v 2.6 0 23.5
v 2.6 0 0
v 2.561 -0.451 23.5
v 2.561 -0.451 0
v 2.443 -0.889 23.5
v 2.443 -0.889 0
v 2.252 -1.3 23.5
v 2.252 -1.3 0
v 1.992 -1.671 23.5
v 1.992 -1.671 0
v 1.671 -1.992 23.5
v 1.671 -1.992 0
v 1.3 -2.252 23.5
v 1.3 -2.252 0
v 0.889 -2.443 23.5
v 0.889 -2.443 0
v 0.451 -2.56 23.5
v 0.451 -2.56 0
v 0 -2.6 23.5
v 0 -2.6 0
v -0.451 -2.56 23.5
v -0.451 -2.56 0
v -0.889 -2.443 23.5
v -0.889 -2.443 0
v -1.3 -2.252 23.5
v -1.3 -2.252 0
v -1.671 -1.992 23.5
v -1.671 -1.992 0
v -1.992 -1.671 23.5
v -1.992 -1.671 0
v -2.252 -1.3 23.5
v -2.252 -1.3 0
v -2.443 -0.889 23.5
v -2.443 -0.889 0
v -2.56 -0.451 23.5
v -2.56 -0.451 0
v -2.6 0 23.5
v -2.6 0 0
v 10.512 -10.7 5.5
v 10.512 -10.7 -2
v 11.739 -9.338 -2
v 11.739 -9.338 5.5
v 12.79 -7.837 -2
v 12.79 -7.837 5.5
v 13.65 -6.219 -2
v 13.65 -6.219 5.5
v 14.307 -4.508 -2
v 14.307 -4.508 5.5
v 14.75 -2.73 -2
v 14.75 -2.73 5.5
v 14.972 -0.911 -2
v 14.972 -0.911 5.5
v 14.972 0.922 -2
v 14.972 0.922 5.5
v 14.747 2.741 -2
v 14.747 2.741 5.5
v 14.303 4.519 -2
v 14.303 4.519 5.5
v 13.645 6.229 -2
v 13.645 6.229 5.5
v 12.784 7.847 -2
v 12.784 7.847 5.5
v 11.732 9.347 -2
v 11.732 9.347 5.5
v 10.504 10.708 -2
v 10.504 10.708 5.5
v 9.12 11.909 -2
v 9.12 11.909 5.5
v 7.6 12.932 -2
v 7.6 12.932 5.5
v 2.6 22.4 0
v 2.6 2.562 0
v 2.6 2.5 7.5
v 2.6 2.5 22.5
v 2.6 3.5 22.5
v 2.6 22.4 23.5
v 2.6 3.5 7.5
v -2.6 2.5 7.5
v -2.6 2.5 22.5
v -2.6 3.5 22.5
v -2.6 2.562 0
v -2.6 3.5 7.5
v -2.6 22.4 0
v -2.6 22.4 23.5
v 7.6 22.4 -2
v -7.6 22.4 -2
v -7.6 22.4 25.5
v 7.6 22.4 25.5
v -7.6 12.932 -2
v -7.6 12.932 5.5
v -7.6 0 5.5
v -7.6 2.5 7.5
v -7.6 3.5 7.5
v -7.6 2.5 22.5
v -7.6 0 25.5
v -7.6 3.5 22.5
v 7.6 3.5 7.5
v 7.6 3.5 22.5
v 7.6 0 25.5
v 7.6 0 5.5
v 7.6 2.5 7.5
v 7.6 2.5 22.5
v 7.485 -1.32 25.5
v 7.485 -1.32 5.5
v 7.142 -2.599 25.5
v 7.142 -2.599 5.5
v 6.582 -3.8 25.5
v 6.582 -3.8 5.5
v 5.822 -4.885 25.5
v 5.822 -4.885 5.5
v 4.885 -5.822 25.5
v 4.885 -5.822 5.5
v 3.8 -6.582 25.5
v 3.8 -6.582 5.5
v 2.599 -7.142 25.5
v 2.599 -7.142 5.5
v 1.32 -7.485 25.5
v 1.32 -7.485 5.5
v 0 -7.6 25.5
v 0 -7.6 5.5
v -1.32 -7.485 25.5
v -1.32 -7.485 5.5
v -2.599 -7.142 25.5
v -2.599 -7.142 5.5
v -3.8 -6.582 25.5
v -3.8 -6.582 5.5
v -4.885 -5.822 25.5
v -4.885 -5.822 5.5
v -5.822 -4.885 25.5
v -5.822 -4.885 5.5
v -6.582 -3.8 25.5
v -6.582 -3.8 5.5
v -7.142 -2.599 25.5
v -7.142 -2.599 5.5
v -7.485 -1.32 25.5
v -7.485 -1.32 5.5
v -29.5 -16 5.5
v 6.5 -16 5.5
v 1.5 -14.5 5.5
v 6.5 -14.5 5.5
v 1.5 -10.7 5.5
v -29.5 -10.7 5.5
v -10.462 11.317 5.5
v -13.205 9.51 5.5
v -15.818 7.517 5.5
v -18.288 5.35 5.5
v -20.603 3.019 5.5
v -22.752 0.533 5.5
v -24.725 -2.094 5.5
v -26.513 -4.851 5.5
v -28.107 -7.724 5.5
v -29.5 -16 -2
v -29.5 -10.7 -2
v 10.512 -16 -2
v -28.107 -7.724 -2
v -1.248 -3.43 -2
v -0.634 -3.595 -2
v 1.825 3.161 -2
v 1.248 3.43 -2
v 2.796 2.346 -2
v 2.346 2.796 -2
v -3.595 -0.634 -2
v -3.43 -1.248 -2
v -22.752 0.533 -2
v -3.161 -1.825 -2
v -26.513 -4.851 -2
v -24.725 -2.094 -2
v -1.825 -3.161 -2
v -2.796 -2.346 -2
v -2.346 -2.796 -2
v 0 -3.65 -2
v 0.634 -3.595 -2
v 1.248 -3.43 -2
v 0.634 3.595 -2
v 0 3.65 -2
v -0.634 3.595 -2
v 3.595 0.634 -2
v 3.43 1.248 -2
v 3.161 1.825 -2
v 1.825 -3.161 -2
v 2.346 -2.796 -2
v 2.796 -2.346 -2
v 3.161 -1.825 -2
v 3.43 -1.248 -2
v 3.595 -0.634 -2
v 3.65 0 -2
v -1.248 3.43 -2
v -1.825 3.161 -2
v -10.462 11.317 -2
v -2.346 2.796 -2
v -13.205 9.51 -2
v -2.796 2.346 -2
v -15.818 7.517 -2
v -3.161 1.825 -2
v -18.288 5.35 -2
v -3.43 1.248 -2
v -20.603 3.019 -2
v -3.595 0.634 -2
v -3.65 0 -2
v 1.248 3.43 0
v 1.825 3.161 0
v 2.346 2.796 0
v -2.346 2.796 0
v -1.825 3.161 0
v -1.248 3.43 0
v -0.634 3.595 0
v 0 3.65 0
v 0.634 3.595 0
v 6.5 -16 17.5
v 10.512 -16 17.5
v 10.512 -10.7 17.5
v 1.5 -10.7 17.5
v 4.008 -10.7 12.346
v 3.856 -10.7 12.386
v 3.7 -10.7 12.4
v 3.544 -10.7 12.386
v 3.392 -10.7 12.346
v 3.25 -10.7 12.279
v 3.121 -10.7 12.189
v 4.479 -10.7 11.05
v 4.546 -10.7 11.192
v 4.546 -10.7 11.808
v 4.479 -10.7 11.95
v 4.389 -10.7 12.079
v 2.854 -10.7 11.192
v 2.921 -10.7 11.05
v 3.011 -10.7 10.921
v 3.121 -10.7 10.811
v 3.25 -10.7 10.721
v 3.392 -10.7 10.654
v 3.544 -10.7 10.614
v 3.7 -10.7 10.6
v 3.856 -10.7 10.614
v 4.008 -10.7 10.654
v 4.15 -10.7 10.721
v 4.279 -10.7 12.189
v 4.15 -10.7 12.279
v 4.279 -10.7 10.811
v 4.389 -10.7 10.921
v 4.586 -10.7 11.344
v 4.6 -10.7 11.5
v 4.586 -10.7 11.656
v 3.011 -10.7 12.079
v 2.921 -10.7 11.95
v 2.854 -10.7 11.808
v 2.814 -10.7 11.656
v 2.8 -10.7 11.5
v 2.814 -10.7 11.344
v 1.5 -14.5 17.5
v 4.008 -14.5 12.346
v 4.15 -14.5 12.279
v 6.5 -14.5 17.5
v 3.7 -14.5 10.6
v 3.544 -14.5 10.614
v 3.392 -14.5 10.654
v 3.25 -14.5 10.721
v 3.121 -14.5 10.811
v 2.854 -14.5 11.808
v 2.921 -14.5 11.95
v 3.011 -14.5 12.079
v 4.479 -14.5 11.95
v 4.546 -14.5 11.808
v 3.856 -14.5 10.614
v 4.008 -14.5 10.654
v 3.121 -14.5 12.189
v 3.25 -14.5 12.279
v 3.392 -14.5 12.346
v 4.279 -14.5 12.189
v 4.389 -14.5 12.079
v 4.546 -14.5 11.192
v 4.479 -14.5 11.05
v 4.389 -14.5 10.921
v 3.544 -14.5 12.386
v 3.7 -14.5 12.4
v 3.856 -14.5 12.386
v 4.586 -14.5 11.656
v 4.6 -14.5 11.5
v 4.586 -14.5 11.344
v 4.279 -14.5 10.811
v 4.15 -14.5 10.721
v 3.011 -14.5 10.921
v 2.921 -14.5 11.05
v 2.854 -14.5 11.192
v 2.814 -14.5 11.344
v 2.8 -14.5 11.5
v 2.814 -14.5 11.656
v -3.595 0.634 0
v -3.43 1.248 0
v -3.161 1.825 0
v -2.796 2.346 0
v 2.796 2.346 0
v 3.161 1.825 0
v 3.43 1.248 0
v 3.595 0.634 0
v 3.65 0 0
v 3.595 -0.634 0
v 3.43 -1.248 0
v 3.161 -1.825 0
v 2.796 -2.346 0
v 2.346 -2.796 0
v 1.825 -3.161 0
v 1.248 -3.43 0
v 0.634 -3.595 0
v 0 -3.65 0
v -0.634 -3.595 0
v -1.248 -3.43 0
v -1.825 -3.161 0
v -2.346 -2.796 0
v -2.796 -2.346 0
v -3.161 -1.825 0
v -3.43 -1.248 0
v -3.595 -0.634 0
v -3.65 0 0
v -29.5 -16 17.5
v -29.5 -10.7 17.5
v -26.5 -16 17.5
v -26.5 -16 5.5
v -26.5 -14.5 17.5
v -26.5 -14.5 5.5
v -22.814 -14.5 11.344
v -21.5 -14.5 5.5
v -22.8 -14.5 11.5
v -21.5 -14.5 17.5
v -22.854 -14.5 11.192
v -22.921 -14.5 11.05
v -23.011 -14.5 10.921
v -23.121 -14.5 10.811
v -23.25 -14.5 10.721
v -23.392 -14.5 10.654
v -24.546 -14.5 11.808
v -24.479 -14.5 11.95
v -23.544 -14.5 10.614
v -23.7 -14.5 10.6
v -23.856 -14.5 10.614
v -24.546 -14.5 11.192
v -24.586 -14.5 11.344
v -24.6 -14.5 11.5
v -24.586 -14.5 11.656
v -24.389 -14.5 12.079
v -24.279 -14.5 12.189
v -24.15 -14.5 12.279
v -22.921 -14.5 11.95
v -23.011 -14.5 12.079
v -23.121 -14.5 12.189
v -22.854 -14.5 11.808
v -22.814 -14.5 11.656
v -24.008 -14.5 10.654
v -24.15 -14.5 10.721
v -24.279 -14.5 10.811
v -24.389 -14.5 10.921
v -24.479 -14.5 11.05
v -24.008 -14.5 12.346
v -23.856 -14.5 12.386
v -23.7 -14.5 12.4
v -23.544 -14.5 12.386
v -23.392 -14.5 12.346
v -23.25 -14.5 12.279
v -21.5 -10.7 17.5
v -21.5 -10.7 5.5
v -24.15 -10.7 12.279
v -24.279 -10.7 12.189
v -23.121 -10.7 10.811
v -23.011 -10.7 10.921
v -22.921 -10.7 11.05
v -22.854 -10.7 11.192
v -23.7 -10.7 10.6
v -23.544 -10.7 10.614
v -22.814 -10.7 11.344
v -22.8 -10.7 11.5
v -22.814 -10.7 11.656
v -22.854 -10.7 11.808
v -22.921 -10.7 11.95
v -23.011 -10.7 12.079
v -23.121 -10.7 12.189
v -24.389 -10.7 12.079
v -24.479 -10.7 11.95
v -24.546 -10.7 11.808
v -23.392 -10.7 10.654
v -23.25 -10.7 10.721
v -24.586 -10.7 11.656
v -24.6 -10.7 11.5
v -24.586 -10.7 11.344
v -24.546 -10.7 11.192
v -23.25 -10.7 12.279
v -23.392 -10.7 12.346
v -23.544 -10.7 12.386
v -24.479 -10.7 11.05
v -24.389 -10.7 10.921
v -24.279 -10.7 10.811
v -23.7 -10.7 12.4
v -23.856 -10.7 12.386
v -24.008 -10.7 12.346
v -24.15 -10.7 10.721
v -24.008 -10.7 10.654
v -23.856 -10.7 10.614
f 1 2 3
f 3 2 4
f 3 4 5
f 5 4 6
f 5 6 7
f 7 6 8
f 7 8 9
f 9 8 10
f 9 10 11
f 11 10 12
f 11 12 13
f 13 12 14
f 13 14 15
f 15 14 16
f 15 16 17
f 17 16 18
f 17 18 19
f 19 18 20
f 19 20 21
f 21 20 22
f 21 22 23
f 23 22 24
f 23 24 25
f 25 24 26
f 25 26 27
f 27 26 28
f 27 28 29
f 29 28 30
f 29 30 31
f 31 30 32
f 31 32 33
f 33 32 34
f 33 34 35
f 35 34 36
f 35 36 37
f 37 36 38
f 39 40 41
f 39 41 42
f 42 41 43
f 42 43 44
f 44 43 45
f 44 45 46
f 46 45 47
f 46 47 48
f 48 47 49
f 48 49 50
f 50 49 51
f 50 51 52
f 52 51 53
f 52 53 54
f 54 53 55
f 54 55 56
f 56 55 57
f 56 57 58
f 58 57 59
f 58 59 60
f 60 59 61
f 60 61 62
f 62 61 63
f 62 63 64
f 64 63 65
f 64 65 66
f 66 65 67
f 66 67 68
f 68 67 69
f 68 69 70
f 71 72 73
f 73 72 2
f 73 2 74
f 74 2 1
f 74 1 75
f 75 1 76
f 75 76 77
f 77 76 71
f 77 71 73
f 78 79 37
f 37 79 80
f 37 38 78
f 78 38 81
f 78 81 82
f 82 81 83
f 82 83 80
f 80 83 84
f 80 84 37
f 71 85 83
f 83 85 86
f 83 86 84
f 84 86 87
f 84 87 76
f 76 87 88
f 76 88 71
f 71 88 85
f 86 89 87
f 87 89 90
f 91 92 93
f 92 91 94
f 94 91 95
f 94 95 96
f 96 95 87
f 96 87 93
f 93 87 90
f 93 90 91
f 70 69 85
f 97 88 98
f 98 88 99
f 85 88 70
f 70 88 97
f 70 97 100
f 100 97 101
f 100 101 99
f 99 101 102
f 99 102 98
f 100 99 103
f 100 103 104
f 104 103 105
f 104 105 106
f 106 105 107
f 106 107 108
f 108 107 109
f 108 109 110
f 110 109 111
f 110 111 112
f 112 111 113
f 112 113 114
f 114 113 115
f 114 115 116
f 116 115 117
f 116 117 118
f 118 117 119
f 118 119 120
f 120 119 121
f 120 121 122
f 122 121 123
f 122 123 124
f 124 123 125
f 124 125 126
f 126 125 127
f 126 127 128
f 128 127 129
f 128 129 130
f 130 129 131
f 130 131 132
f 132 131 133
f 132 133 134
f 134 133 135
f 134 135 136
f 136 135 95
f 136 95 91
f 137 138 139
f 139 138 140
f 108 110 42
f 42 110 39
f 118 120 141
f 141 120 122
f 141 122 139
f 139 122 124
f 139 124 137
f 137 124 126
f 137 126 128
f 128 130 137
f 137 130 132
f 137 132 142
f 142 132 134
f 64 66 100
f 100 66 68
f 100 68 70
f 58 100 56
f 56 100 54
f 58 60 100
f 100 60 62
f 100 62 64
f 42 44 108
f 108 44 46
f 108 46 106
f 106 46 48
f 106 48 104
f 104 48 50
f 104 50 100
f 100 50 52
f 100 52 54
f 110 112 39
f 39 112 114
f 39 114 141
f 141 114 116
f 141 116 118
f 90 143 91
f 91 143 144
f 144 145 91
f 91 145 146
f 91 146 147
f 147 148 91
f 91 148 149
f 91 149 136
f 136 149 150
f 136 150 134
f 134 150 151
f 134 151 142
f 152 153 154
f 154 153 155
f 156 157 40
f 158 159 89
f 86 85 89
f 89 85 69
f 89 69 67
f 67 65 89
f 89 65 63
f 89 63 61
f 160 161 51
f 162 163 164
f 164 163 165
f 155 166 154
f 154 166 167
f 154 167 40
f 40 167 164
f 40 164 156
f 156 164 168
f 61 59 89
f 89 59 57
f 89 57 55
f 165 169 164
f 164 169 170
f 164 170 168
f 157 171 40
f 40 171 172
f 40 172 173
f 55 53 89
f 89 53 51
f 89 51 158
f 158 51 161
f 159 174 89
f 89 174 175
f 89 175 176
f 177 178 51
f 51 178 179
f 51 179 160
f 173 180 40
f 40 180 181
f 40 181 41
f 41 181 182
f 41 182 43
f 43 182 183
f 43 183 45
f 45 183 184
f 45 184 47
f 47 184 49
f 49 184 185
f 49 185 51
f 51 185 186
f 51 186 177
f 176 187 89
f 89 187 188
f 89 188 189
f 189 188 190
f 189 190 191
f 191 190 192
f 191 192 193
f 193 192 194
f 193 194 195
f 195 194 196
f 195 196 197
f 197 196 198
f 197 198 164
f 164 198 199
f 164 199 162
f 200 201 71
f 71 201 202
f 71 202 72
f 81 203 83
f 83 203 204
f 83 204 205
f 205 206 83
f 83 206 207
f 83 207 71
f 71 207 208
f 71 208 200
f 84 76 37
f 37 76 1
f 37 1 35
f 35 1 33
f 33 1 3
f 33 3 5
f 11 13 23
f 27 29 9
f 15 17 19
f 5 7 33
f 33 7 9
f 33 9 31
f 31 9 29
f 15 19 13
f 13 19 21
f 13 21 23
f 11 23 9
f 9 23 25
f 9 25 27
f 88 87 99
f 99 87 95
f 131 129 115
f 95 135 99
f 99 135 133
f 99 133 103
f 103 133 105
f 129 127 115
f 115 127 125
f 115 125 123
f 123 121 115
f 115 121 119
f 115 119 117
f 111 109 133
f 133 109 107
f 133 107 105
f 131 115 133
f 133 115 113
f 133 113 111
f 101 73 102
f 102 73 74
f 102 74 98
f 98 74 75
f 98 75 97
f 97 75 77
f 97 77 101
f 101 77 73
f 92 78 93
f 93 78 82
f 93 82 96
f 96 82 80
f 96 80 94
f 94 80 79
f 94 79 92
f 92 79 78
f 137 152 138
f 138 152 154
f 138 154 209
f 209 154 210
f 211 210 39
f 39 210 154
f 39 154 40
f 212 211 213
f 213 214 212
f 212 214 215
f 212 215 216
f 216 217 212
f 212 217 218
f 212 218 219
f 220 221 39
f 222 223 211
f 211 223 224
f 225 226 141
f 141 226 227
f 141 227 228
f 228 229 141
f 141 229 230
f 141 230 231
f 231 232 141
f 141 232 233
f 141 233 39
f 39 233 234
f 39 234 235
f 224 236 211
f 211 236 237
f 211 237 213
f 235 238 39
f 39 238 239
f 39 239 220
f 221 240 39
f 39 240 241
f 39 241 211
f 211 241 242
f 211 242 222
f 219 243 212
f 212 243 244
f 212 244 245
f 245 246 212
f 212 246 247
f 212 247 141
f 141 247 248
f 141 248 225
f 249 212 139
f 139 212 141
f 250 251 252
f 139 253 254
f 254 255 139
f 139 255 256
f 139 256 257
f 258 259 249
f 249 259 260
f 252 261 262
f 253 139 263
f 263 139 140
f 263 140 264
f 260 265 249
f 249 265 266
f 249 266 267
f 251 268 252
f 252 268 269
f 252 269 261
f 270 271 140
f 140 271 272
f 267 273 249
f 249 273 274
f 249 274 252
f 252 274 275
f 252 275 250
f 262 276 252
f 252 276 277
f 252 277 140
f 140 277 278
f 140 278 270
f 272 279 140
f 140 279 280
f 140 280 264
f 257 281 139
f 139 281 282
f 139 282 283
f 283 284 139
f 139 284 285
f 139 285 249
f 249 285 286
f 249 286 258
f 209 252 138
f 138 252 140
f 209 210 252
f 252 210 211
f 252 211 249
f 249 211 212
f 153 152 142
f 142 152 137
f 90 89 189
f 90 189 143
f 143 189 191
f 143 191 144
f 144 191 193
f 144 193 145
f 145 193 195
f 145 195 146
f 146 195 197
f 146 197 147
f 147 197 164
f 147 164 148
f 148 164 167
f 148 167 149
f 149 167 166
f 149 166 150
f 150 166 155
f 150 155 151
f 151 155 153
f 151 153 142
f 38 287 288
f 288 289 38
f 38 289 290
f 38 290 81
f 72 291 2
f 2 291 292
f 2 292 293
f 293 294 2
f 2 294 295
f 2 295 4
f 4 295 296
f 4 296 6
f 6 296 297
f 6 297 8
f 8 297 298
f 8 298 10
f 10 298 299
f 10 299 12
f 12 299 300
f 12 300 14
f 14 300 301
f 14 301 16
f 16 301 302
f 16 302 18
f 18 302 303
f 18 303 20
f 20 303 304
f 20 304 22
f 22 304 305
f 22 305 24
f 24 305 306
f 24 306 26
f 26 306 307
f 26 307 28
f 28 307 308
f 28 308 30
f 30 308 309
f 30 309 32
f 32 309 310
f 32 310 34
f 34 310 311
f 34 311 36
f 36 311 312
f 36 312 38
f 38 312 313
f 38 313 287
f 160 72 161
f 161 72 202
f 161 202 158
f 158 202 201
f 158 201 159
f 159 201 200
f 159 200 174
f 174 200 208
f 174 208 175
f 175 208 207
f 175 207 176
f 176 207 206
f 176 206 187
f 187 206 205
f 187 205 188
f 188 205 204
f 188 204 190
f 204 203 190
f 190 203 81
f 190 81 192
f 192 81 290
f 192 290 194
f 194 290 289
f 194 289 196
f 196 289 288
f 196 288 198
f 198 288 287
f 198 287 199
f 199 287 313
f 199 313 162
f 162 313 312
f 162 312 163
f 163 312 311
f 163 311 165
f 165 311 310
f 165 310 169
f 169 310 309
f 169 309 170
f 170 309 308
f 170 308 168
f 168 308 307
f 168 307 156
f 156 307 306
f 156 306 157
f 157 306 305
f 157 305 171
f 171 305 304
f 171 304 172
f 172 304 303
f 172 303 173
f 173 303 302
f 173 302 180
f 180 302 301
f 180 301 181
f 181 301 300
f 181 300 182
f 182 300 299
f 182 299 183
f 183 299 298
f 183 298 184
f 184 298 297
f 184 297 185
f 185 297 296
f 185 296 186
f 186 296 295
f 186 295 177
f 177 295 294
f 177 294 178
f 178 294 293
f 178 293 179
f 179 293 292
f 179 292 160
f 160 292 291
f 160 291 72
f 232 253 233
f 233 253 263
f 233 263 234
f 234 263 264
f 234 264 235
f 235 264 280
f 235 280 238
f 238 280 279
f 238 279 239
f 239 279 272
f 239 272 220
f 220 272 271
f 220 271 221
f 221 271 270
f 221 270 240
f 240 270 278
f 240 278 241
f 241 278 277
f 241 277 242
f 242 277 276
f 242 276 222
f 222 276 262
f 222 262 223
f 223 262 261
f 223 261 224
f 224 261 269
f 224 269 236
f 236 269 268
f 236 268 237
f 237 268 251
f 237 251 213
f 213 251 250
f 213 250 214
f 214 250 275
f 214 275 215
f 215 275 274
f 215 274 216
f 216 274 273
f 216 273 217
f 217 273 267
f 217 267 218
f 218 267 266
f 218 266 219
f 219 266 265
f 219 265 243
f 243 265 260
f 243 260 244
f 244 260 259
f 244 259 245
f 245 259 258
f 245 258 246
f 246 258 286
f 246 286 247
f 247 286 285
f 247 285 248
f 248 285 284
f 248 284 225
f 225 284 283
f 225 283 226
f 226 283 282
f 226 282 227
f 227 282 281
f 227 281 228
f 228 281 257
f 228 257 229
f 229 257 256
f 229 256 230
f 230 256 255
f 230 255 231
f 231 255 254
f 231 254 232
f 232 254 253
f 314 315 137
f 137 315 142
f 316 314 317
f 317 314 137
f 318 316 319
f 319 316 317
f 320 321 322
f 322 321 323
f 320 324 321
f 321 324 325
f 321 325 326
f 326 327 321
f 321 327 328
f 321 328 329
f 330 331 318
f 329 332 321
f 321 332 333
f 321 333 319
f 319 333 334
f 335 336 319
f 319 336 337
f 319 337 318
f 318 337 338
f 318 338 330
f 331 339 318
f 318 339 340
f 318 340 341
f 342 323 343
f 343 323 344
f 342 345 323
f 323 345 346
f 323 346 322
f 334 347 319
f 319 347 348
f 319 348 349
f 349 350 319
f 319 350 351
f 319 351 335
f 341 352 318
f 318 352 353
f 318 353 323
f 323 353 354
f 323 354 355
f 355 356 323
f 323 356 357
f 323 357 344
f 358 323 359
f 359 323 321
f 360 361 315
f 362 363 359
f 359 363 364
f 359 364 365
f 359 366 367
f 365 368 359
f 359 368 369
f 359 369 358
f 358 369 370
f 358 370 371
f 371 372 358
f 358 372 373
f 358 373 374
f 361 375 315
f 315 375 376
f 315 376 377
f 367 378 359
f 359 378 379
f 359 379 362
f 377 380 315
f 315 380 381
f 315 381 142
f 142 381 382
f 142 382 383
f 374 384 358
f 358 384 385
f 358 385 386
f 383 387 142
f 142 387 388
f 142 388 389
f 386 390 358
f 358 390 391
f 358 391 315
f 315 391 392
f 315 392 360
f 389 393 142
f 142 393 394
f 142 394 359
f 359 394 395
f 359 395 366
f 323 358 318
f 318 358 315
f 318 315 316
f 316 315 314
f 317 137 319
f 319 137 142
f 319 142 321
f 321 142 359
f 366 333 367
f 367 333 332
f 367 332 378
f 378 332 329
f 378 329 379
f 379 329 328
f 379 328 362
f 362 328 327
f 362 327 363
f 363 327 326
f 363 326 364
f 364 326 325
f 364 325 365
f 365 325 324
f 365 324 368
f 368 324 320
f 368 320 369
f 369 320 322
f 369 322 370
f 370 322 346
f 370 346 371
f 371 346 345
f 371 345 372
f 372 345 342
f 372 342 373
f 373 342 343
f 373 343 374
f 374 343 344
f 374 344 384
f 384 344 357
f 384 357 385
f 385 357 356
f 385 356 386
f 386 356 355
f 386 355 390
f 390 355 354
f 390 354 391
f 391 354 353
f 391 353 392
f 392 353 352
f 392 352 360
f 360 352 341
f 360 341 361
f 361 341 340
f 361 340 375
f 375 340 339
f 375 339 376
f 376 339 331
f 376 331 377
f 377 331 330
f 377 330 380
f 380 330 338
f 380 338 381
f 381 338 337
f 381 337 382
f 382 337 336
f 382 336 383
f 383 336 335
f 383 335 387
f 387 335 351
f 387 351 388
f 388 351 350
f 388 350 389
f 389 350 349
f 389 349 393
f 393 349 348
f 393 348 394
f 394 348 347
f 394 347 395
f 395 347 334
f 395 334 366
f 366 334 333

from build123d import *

# Parameters (mm, degrees)
SALIENTE_EXTRUIR1_DEPTH = 23.5
CORTAR_EXTRUIR1_START   = -18
CORTAR_EXTRUIR1_DEPTH   = 18
SALIENTE_EXTRUIR2_START = 2
SALIENTE_EXTRUIR2_DEPTH = 2
SALIENTE_EXTRUIR3_DEPTH = 2
CROQUIS7_W              = 15
CROQUIS7_H              = 1
CORTAR_EXTRUIR2_DEPTH   = 41.777076894
SALIENTE_EXTRUIR4_DEPTH = 12
SALIENTE_EXTRUIR5_DEPTH = 7.5
CROQUIS12_R             = 3.65
CORTAR_EXTRUIR3_DEPTH   = 2
CROQUIS13_R             = 0.9
CORTAR_EXTRUIR4_DEPTH   = 3.8


with BuildPart() as part:
    # Croquis1 → Saliente-Extruir1 (new body)
    with BuildSketch(Plane.XY):
        with BuildLine():
            Line((-7.6, 12.932130528), (-7.6, 22.4))
            Line((-7.6, 22.4), (-2.6, 22.4))
            Line((-2.6, 22.4), (-2.6, 0))
            ThreePointArc((-2.6, 0), (0, -2.6), (2.6, 0))
            Line((2.6, 0), (2.6, 22.4))
            Line((2.6, 22.4), (7.6, 22.4))
            Line((7.6, 22.4), (7.6, 12.932130528))
            ThreePointArc((7.6, 12.932130528), (0, -15), (-7.6, 12.932130528))
        make_face()
    extrude(amount=SALIENTE_EXTRUIR1_DEPTH)

    # Croquis2 → Cortar-Extruir1 (cut)
    with BuildSketch(Plane.XY.offset(23.5).offset(CORTAR_EXTRUIR1_START)):
        with BuildLine():
            Line((-7.6, 12.932130528), (-7.6, 0))
            ThreePointArc((-7.6, 0), (0, -7.6), (7.6, 0))
            Line((7.6, 0), (7.6, 12.932130528))
            ThreePointArc((7.6, 12.932130528), (0, -15), (-7.6, 12.932130528))
        make_face()
    extrude(amount=CORTAR_EXTRUIR1_DEPTH, mode=Mode.SUBTRACT)

    # Croquis4 → Saliente-Extruir2 (add)
    with BuildSketch(Plane(origin=(0, 0, 0), x_dir=(-1, 0, 0), z_dir=(0, 0, -1)).offset(SALIENTE_EXTRUIR2_START)):
        with BuildLine():
            Line((-2.6, 0), (-2.6, 14.77294825))
            ThreePointArc((-2.6, 14.77294825), (-5.182388684, 14.07632223), (-7.6, 12.932130528))
            ThreePointArc((-7.6, 12.932130528), (-7.449832213, -13.019216566), (15, 0))
            ThreePointArc((15, 0), (13.019216566, 7.449832213), (7.6, 12.932130528))
            ThreePointArc((7.6, 12.932130528), (5.182388684, 14.07632223), (2.6, 14.77294825))
            Line((2.6, 14.77294825), (2.6, 0))
            ThreePointArc((2.6, 0), (0, -2.6), (-2.6, 0))
        make_face()
        with BuildLine():
            Line((-2.6, 0), (-2.6, 14.77294825))
            ThreePointArc((-2.6, 14.77294825), (-5.182388684, 14.07632223), (-7.6, 12.932130528))
            ThreePointArc((-7.6, 12.932130528), (-7.449832213, -13.019216566), (15, 0))
            ThreePointArc((15, 0), (13.019216566, 7.449832213), (7.6, 12.932130528))
            ThreePointArc((7.6, 12.932130528), (5.182388684, 14.07632223), (2.6, 14.77294825))
            Line((2.6, 14.77294825), (2.6, 0))
            ThreePointArc((2.6, 0), (0, -2.6), (-2.6, 0))
        make_face()
        with BuildLine():
            ThreePointArc((2.6, 14.77294825), (0, 15), (-2.6, 14.77294825))
            Line((-2.6, 14.77294825), (-2.6, 0))
            ThreePointArc((-2.6, 0), (0, 2.6), (2.6, 0))
            Line((2.6, 0), (2.6, 14.77294825))
        make_face()
        with BuildLine():
            Line((7.6, 22.4), (2.6, 22.4))
            Line((2.6, 22.4), (2.6, 14.77294825))
            ThreePointArc((2.6, 14.77294825), (5.182388684, 14.07632223), (7.6, 12.932130528))
            Line((7.6, 12.932130528), (7.6, 22.4))
        make_face()
        with BuildLine():
            Line((2.6, 22.4), (-2.6, 22.4))
            Line((-2.6, 22.4), (-2.6, 14.77294825))
            ThreePointArc((-2.6, 14.77294825), (0, 15), (2.6, 14.77294825))
            Line((2.6, 14.77294825), (2.6, 22.4))
        make_face()
        with BuildLine():
            Line((-2.6, 14.77294825), (-2.6, 22.4))
            Line((-2.6, 22.4), (-7.6, 22.4))
            Line((-7.6, 22.4), (-7.6, 12.932130528))
            ThreePointArc((-7.6, 12.932130528), (-5.182388684, 14.07632223), (-2.6, 14.77294825))
        make_face()
    extrude(amount=-SALIENTE_EXTRUIR2_DEPTH)

    # Croquis6 → Saliente-Extruir3 (add)
    with BuildSketch(Plane.XY.offset(23.5)):
        with BuildLine():
            Line((-2.6, 22.4), (2.6, 22.4))
            Line((2.6, 22.4), (7.6, 22.4))
            Line((7.6, 22.4), (7.6, 0))
            ThreePointArc((7.6, 0), (0, -7.6), (-7.6, 0))
            Line((-7.6, 0), (-7.6, 22.4))
            Line((-7.6, 22.4), (-2.6, 22.4))
        make_face()
    extrude(amount=SALIENTE_EXTRUIR3_DEPTH)

    # Croquis7 → Cortar-Extruir2 (cut, through all)
    with BuildSketch(Plane.ZY.offset(7.6)):
        with Locations((15, 3)):
            Rectangle(CROQUIS7_W, CROQUIS7_H)
    extrude(amount=-CORTAR_EXTRUIR2_DEPTH, mode=Mode.SUBTRACT)

    # Croquis8 → Saliente-Extruir4 (add)
    with BuildSketch(Plane.XY.offset(5.5)):
        Polygon((-21.5, -14.5), (-21.5, -10.7), (-29.5, -10.7), (-29.5, -16), (-26.5, -16), (-26.5, -14.5), align=None)
        Polygon((6.5, -16), (6.5, -14.5), (1.5, -14.5), (1.5, -10.7), (10.512373662, -10.7), (10.512373662, -16), align=None)
    extrude(amount=SALIENTE_EXTRUIR4_DEPTH)


with BuildPart() as saliente_extruir4_piece_1:
    # of the separate pieces the step leaves, piece 1, a body of its own (saliente_extruir4_pieces)
    add(part.part.solids().sort_by_distance((-7.6, 12.932130528, 5.5))[0])

    # Croquis10 → Saliente-Extruir5 (add)
    with BuildSketch(Plane(origin=(0, 0, -2), x_dir=(-1, 0, 0), z_dir=(0, 0, -1))):
        with BuildLine():
            ThreePointArc((29.5, -10.7), (20.603060039, 3.018645093), (7.6, 12.932130528))
            ThreePointArc((7.6, 12.932130528), (11.905455825, -9.124698438), (-10.512373662, -10.7))
            Line((-10.512373662, -10.7), (-10.512373662, -16))
            Line((-10.512373662, -16), (29.5, -16))
            Line((29.5, -16), (29.5, -10.7))
        make_face()
    extrude(amount=-SALIENTE_EXTRUIR5_DEPTH)

    # Croquis12 → Cortar-Extruir3 (cut)
    with BuildSketch(Plane(origin=(0, 0, -2), x_dir=(-1, 0, 0), z_dir=(0, 0, -1))):
        Circle(CROQUIS12_R)
    extrude(amount=-CORTAR_EXTRUIR3_DEPTH, mode=Mode.SUBTRACT)


with BuildPart() as saliente_extruir4_piece_2:
    # of the separate pieces the step leaves, piece 2, a body of its own (saliente_extruir4_pieces)
    add(part.part.solids().sort_by_distance((-21.5, -14.5, 5.5))[0])


with BuildPart() as cortar_extruir4_tool:
    # Croquis13 → Cortar-Extruir4 (new body)
    with BuildSketch(Plane.XZ.offset(14.5)):
        with Locations(Location((-23.7, 11.5, 0), (0, 0, 270))):
            Circle(CROQUIS13_R)
        with Locations(Location((3.7, 11.5, 0), (0, 0, 270))):
            Circle(CROQUIS13_R)
    extrude(amount=-CORTAR_EXTRUIR4_DEPTH)


with BuildPart() as saliente_extruir4_piece_1_1:
    add(saliente_extruir4_piece_1.part)

    # Cortar-Extruir4: cut by cortar_extruir4_tool
    add(cortar_extruir4_tool.part, mode=Mode.SUBTRACT)


with BuildPart() as saliente_extruir4_piece_2_1:
    add(saliente_extruir4_piece_2.part)

    # Cortar-Extruir4: cut by cortar_extruir4_tool
    add(cortar_extruir4_tool.part, mode=Mode.SUBTRACT)


solid = Compound([saliente_extruir4_piece_1_1.part, saliente_extruir4_piece_2_1.part])
